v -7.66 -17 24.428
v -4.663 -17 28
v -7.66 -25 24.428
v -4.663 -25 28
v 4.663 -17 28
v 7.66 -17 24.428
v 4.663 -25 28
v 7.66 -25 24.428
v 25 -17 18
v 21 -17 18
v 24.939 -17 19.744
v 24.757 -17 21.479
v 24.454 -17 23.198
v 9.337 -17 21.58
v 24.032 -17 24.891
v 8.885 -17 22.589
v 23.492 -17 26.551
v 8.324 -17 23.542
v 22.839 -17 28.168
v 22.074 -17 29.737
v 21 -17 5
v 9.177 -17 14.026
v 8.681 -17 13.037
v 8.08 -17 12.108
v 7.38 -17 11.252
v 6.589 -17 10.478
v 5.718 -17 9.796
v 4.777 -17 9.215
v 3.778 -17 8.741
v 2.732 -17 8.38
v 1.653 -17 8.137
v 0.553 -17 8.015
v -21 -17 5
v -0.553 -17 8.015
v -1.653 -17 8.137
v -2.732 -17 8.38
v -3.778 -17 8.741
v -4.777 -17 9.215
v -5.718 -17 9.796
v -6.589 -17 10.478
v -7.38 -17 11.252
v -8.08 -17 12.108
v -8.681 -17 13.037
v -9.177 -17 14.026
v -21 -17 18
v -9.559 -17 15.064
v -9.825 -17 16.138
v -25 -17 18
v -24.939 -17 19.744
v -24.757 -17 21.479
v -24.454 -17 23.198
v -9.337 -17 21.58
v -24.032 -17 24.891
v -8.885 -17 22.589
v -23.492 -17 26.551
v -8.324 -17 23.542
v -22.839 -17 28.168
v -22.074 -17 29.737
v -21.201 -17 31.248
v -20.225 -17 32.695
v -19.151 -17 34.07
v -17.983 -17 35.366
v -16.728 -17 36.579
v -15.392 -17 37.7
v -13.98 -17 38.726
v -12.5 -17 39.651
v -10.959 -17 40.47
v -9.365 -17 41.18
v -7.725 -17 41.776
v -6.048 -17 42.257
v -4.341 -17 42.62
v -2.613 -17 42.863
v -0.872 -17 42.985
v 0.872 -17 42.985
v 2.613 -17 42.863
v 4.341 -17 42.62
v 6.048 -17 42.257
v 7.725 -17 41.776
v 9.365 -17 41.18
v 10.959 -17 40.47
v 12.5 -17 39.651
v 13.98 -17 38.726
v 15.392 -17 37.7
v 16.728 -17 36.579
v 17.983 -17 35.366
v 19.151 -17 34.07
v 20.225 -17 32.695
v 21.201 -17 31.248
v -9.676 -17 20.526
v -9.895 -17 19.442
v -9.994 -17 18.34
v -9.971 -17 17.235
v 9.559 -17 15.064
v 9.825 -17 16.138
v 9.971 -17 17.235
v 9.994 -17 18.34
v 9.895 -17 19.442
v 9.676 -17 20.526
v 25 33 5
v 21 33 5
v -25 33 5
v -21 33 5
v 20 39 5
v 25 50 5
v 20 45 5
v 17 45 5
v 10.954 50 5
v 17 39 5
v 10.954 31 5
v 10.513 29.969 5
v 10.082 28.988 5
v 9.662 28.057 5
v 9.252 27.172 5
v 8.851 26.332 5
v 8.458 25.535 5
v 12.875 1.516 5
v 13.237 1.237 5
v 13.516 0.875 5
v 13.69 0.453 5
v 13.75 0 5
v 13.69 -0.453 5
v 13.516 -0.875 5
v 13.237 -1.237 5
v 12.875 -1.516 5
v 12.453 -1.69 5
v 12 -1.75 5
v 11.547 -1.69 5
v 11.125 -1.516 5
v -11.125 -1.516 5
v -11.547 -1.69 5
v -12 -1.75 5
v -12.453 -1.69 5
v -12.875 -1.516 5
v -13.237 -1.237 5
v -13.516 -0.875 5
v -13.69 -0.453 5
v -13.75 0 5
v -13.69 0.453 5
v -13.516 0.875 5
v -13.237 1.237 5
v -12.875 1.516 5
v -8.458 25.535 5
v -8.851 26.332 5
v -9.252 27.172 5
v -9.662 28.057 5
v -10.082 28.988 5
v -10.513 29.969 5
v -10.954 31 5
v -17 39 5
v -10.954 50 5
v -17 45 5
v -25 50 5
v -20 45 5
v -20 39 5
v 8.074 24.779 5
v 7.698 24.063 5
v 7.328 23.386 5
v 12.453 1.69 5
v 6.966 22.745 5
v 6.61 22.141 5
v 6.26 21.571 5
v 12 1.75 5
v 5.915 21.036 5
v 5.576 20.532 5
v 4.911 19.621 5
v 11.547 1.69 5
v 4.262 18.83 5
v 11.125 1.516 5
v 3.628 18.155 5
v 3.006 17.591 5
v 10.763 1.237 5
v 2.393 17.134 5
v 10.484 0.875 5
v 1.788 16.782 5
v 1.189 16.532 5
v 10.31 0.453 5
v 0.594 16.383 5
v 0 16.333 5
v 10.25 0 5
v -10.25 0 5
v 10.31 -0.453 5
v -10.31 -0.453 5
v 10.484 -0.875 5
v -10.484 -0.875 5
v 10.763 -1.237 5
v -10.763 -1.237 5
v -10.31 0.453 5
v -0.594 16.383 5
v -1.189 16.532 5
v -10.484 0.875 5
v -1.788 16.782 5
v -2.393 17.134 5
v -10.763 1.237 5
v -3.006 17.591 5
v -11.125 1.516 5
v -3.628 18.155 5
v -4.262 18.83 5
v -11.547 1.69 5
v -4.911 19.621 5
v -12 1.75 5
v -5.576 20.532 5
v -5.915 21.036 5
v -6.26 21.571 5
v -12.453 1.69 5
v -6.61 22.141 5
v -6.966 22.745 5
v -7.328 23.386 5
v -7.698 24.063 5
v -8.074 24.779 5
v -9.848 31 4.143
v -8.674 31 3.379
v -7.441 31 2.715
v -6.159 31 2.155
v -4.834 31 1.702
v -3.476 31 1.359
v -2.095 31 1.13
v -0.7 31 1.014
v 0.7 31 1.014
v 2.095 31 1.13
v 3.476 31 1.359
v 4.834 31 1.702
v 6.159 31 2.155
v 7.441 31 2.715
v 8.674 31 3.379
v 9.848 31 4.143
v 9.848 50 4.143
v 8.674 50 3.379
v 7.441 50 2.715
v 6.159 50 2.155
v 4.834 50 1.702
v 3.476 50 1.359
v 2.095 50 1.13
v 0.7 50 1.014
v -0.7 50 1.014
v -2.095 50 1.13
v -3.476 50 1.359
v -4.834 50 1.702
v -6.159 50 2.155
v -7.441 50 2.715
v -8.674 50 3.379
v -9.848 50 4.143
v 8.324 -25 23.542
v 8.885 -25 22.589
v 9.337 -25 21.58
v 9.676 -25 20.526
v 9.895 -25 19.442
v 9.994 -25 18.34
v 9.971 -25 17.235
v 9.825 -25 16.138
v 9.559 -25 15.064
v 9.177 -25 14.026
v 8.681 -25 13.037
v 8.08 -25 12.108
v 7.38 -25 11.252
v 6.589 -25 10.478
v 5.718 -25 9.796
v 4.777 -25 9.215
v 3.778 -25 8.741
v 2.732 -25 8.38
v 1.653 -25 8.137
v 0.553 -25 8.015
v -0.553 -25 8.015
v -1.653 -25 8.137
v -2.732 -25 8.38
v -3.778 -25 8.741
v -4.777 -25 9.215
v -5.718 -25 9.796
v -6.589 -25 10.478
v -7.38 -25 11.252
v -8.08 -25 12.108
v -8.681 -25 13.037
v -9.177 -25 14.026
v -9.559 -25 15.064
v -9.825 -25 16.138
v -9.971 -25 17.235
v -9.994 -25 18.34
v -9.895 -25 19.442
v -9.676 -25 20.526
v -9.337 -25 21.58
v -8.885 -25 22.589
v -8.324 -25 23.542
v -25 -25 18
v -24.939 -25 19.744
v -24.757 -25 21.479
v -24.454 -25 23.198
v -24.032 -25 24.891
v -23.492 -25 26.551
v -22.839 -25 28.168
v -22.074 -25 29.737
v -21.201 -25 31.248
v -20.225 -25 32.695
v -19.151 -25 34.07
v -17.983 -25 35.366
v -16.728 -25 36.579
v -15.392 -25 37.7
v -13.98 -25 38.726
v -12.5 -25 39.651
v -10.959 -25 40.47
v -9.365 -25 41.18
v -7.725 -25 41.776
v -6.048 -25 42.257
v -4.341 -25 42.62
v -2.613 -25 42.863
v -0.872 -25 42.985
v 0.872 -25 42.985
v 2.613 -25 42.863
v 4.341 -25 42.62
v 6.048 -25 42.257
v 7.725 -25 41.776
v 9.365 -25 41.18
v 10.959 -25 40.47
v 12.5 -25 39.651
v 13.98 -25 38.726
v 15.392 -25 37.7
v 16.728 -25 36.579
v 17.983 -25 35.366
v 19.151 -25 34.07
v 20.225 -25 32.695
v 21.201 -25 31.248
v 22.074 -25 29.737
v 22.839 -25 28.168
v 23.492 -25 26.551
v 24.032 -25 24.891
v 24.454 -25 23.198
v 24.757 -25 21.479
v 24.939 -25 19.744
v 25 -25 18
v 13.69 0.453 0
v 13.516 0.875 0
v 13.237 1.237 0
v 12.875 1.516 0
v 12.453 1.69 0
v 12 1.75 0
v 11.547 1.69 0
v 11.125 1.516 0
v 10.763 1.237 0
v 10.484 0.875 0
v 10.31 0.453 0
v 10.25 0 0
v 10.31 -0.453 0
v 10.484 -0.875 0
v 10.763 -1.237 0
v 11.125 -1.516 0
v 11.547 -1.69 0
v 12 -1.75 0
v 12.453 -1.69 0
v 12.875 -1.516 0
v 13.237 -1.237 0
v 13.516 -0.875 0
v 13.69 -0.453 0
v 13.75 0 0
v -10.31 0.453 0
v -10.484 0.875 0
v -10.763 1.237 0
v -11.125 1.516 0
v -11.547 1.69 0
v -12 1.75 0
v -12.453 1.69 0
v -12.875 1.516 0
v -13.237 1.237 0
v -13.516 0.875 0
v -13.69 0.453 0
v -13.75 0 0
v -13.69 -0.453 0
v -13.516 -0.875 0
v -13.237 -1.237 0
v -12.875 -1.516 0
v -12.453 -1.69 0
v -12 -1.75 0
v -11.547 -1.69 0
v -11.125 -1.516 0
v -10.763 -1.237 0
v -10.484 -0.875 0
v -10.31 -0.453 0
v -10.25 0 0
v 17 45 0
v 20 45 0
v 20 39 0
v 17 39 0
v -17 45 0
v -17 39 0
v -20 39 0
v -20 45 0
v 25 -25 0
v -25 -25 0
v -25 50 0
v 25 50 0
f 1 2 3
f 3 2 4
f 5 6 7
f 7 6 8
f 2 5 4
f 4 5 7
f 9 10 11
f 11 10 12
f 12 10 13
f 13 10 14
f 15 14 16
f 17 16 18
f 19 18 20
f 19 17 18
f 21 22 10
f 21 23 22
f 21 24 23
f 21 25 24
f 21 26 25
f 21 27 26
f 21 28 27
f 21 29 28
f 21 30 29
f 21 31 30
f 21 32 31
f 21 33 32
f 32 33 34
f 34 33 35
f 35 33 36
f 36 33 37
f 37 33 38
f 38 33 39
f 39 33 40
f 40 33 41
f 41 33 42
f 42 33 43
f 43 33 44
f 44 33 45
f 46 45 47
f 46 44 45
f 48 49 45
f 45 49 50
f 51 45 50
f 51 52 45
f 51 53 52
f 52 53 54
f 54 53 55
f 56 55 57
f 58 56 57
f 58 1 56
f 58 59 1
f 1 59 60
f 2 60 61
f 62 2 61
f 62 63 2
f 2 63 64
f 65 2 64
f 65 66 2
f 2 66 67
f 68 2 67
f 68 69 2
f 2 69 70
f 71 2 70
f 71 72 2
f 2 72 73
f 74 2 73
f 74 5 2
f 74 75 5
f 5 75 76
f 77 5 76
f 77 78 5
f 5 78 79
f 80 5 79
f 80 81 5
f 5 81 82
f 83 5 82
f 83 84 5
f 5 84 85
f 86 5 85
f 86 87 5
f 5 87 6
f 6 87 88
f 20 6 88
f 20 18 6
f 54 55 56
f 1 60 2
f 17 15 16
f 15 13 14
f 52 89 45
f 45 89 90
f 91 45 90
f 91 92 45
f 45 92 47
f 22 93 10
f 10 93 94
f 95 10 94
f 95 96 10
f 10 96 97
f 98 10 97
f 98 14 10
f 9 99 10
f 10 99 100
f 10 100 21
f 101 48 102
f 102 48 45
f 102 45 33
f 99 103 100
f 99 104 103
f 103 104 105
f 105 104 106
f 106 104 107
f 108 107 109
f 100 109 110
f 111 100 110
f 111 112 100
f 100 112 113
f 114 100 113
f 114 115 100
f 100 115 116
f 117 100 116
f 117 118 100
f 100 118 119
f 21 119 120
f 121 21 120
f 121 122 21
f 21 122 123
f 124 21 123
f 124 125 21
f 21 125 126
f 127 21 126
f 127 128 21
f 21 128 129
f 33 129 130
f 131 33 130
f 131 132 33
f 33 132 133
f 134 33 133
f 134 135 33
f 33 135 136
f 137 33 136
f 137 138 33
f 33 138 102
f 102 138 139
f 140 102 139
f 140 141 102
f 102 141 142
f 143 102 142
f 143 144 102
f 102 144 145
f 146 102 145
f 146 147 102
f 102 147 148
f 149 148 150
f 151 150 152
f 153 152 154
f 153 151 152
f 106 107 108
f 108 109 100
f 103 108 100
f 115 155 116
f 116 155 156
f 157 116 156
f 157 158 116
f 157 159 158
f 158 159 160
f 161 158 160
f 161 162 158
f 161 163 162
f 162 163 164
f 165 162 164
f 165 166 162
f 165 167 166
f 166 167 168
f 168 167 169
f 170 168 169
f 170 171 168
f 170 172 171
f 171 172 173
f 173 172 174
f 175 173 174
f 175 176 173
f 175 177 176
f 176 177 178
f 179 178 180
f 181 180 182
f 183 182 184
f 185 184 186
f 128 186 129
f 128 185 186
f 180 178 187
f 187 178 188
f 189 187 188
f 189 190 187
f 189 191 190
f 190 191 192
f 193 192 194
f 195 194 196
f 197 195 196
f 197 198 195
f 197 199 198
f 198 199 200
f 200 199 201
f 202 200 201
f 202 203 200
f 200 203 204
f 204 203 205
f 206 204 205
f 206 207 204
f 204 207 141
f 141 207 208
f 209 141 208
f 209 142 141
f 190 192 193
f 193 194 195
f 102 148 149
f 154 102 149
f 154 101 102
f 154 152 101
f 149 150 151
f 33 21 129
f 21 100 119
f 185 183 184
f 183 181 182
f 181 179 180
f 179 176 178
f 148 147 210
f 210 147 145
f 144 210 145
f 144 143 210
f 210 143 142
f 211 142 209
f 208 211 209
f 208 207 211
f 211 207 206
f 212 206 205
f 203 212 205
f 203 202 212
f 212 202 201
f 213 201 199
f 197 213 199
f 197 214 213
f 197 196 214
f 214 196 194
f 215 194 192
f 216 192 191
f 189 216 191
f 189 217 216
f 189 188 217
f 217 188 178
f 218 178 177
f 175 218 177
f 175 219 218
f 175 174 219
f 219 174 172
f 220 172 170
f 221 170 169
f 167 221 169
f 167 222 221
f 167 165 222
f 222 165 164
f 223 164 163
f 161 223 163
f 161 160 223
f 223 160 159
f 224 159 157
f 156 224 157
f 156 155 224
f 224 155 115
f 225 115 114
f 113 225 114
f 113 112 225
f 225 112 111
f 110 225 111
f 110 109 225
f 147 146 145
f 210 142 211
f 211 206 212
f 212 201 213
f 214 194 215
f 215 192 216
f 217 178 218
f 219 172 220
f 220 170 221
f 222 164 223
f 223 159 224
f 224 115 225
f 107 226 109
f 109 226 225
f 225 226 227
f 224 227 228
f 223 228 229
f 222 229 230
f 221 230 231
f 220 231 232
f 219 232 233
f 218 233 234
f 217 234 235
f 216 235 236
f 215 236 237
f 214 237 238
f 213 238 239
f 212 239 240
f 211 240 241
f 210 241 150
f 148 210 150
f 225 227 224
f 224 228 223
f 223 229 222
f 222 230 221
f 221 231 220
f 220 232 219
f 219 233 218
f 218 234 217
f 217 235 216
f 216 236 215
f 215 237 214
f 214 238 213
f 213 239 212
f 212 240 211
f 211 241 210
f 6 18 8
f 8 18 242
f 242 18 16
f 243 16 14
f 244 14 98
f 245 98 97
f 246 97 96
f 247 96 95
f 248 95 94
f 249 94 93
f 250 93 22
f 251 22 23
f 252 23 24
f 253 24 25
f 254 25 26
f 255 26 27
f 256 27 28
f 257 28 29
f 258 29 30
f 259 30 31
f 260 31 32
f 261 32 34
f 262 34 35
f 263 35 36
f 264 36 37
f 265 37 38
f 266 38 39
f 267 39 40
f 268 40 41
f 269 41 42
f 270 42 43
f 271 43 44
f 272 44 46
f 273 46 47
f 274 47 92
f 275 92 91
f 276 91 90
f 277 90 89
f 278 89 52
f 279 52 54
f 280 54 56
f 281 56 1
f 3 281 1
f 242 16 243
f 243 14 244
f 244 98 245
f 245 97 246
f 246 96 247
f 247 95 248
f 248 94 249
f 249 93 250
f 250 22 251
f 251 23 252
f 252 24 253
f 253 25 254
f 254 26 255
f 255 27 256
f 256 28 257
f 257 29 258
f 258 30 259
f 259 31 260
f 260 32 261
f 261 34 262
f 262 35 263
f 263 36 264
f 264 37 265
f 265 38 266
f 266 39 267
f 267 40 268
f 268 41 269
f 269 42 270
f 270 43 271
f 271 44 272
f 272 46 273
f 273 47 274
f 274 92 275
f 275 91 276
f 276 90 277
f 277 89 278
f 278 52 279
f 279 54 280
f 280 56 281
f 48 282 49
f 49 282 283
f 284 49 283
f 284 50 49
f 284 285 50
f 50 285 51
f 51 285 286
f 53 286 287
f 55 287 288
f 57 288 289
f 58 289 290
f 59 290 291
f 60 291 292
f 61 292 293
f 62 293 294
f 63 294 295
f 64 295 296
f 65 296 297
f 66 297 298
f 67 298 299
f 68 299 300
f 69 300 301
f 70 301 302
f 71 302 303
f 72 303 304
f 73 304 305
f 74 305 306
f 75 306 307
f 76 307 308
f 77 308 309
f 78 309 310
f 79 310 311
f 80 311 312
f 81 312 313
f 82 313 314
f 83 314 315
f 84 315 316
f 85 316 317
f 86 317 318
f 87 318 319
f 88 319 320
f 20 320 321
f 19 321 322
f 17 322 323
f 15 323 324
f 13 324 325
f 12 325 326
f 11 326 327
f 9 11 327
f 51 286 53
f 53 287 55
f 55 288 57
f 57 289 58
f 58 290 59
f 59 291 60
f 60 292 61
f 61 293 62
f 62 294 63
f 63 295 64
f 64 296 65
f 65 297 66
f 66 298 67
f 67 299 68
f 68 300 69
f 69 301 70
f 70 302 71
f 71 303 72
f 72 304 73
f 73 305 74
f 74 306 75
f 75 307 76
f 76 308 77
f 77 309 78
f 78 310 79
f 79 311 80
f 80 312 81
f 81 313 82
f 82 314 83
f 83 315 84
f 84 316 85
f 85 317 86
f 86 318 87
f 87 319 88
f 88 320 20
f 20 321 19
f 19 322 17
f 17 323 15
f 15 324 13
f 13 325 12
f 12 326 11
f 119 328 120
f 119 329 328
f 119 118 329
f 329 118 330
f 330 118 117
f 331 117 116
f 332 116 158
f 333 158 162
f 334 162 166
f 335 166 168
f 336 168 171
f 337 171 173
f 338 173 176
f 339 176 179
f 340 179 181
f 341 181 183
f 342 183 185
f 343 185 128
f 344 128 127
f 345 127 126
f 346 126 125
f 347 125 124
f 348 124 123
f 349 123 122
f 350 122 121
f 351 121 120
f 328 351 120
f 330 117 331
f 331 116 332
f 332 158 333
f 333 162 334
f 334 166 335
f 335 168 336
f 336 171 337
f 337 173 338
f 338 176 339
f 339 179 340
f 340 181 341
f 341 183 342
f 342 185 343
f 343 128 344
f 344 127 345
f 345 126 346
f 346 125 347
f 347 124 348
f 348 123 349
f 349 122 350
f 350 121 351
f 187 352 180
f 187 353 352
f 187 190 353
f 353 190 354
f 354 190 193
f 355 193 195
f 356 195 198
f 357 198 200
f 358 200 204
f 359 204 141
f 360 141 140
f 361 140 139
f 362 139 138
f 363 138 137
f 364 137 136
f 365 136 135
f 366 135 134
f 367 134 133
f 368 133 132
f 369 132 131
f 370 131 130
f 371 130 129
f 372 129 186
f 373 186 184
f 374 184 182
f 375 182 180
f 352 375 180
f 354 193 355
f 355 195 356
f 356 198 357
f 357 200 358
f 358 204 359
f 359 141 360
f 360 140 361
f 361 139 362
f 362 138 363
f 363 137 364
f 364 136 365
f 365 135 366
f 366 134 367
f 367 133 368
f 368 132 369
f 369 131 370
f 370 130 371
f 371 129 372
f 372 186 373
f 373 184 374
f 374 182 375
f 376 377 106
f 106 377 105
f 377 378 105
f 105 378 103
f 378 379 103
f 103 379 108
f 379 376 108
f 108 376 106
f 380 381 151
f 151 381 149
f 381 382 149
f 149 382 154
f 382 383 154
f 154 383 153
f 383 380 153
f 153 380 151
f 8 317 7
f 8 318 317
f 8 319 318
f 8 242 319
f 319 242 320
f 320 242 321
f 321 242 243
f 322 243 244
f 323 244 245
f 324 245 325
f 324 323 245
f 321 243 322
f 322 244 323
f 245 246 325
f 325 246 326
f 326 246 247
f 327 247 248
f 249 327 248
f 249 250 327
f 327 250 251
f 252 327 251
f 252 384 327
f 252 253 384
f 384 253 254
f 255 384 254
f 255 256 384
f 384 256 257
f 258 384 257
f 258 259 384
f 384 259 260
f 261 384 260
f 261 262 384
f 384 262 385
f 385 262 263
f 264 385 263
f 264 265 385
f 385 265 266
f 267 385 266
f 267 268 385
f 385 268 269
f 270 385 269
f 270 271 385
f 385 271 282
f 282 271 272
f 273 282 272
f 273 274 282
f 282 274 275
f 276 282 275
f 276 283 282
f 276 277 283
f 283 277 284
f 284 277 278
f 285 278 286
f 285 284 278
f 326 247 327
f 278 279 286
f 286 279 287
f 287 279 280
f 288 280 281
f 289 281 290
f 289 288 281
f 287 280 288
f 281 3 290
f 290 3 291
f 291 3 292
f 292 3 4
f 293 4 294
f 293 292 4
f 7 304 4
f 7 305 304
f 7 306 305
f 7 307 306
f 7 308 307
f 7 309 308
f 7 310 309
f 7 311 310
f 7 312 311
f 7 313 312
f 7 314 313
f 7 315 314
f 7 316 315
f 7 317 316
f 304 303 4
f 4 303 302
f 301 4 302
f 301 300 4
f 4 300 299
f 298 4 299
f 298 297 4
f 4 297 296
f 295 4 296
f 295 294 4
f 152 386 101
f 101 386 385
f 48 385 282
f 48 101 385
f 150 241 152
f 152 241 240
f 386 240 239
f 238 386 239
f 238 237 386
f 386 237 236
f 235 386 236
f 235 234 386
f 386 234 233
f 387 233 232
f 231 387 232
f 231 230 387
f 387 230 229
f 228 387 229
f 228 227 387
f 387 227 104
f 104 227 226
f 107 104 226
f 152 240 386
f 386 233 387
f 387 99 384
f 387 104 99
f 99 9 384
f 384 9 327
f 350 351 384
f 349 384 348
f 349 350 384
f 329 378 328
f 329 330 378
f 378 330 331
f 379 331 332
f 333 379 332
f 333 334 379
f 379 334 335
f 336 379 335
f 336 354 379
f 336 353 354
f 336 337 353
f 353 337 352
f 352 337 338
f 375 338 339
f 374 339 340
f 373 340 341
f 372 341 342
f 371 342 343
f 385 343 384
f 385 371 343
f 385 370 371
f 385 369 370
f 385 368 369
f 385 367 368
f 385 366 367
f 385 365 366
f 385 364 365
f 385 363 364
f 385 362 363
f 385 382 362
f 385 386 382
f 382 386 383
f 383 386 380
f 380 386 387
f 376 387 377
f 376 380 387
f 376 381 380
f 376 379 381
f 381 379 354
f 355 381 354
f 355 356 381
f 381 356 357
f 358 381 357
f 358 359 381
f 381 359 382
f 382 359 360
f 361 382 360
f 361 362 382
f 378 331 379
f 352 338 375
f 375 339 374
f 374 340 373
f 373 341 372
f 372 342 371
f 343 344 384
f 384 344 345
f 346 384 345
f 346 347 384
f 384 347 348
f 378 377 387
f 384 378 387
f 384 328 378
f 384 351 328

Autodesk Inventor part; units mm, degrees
ref_plane "YZ Plane" through (0, 0, 0) normal (1, 0, 0) x (0, 1, 0)
ref_plane "XZ Plane" through (0, 0, 0) normal (0, 1, 0) x (-1, 0, 0)
ref_plane "XY Plane" through (0, 0, 0) normal (0, 0, 1) x (1, 0, 0)
sketch "Sketch1" plane through (0, 0, 0) normal (0, 0, 1) x (1, 0, 0)
  line L0 (-25, -25) -> (25, -25)
  line L1 (25, -25) -> (25, 25)
  line L2 (25, 25) -> (-25, 25)
  line L3 (-25, 25) -> (-25, -25)
  line L4 (-25, -25) -> (25, 25) construction
  line L5 (25, -25) -> (-25, 25) construction
  line L6 (-25, 0) -> (25, 0) construction
  circle A0 centre (-12, 0) radius 1.75
  line L7 (0, 25) -> (0, -25) construction
  circle A1 centre (12, 0) radius 1.75
  line L8 (-25, 25) -> (25, 25)
  line L9 (25, 25) -> (25, 50)
  line L10 (25, 50) -> (-25, 50)
  line L11 (-25, 50) -> (-25, 25)
  line L12 (-20, 45) -> (-17, 45)
  line L13 (-17, 45) -> (-17, 39)
  line L14 (-17, 39) -> (-20, 39)
  line L15 (-20, 39) -> (-20, 45)
  line L16 (20, 45) -> (17, 45)
  line L17 (17, 45) -> (17, 39)
  line L18 (17, 39) -> (20, 39)
  line L19 (20, 39) -> (20, 45)
  point P0 (0, 0)
  dimension "d0" = 50
  dimension "d1" = 50
  dimension "d14" = 3.5
  dimension "d15" = 24
  dimension "d16" = 25
  dimension "d17" = 5
  dimension "d18" = 6
  dimension "d19" = 3
  dimension "d20" = 17
extrude "Extrusion1" add sketch "Sketch1" along normal blind 5
sketch "Sketch2" plane through (-25, -25, 0) normal (0, -1, 0) x (1, 0, 0)
  line L0 (0, 0) -> (50, 0) projected
  line L1 (0, 5) -> (50, 5) projected
  line L2 (0, 0) -> (0, 5) projected
  arc A0 (17.3396, 24.4279) -> (32.6604, 24.4279) centre (25, 18) ccw
  circle A1 centre (25, 18) radius 17 construction
  line L3 (25, 18) -> (25, 0) construction
  line L4 (0, 5) -> (0, 18)
  arc A2 (50, 18) -> (0, 18) centre (25, 18) ccw
  line L5 (50, 18) -> (50, 5)
  line L6 (25, 18) -> (25, 43) construction
  line L7 (17.3396, 24.4279) -> (20.3369, 28)
  line L8 (25, 33.5572) -> (29.6631, 28)
  line L9 (50, 0) -> (50, 5) projected
  line L10 (20.3369, 28) -> (29.6631, 28)
  arc A3 (32.6604, 24.4279) -> (25, 28) centre (25, 18) ccw
  arc A4 (25, 28) -> (17.3396, 24.4279) centre (25, 18) ccw
  arc A5 (25, 28) -> (17.3396, 24.4279) centre (25, 18) ccw
  arc A6 (32.6604, 24.4279) -> (25, 28) centre (25, 18) ccw
  line L11 (29.6631, 28) -> (32.6604, 24.4279)
  line L12 (20.3369, 28) -> (25, 33.5572)
  dimension "d4" = 20
  dimension "d5" = 34
  dimension "d6" = 18
  dimension "d24" = 80
extrude "Extrusion2" add sketch "Sketch2" against normal blind 8 contours L4 A2 L5 L1 | A4 A3 A0 | L7 L10 A4 | A3 L10 L11 | L12 L8 L10
sketch "Sketch3" plane through (0, 0, 0) normal (1, 0, 0) x (0, 1, 0)
  line L0 (-17, 28) -> (-25, 28) projected
  line L1 (-17, 8) -> (-17, 5) projected
  line L2 (-17, 5) -> (50, 5) projected
  line L3 (50, 0) -> (-25, 0) projected
  line L4 (-25, 0) -> (-25, 8) projected
  line L5 (-25, 43) -> (-17, 43) projected
  line L6 (-17, 43) -> (-17, 28) projected
  line L7 (-25, 8) -> (-17, 8) projected
  line L8 (-25, 28) -> (-25, 43) projected
  line L9 (-25, 8) -> (-25, 28)
  line L10 (-25, 18) -> (31, 18)
  line L11 (9, 29) -> (31, 35)
  line L12 (31, 18) -> (31, 35)
  line L13 (50, 5) -> (50, 0) projected
  line L14 (9, 29) -> (-17, 28)
  line L15 (31, 18) -> (56.5287, 18)
  line L16 (56.5287, 18) -> (56.5287, 35)
  line L17 (56.5287, 35) -> (31, 35)
  line L18 (31, 35) -> (31, 18)
  point P0 (0, 0)
  dimension "d9" = 26
  dimension "d10" = 22
  dimension "d11" = 11
  dimension "d12" = 17
revolve "Revolution1" cut sketch "Sketch3" angle 360 about axis through (0, -25, 18) along (0, 1, 0) contours L14 L11 L12 L10 L9 L0 | L17 L16 L15 L12
sketch "Sketch4" plane through (-25, -25, 0) normal (-1, 0, 0) x (0, 0, 1)
  line L0 (5, 8) -> (18, 8) projected
  line L1 (5, 75) -> (5, 8) projected
  line L2 (18, 8) -> (5, 58)
  point P0 (0, 25)
  dimension "d21" = 50
extrude "Extrusion3" add sketch "Sketch4" against normal blind 4
mirror "Mirror1" about plane through (0, 0, 0) normal (1, 0, 0) of "Extrusion3"
sketch "Szkic5" plane through (-25, -25, 0) normal (0, -1, 0) x (1, 0, 0)
  circle A0 centre (25, 18) radius 10 projected
  line L0 (20.3369, 28) -> (29.6631, 28) projected
  line L1 (17.3396, 24.4279) -> (20.3369, 28) projected
  line L2 (29.6631, 28) -> (32.6604, 24.4279) projected
  point P0 (25, 0)
extrude "Wyciągnięcie proste4" cut sketch "Szkic5" against normal up to next contours A0 L0 L2 | L1 L0 A0
properties part number "proxxon_mount"
